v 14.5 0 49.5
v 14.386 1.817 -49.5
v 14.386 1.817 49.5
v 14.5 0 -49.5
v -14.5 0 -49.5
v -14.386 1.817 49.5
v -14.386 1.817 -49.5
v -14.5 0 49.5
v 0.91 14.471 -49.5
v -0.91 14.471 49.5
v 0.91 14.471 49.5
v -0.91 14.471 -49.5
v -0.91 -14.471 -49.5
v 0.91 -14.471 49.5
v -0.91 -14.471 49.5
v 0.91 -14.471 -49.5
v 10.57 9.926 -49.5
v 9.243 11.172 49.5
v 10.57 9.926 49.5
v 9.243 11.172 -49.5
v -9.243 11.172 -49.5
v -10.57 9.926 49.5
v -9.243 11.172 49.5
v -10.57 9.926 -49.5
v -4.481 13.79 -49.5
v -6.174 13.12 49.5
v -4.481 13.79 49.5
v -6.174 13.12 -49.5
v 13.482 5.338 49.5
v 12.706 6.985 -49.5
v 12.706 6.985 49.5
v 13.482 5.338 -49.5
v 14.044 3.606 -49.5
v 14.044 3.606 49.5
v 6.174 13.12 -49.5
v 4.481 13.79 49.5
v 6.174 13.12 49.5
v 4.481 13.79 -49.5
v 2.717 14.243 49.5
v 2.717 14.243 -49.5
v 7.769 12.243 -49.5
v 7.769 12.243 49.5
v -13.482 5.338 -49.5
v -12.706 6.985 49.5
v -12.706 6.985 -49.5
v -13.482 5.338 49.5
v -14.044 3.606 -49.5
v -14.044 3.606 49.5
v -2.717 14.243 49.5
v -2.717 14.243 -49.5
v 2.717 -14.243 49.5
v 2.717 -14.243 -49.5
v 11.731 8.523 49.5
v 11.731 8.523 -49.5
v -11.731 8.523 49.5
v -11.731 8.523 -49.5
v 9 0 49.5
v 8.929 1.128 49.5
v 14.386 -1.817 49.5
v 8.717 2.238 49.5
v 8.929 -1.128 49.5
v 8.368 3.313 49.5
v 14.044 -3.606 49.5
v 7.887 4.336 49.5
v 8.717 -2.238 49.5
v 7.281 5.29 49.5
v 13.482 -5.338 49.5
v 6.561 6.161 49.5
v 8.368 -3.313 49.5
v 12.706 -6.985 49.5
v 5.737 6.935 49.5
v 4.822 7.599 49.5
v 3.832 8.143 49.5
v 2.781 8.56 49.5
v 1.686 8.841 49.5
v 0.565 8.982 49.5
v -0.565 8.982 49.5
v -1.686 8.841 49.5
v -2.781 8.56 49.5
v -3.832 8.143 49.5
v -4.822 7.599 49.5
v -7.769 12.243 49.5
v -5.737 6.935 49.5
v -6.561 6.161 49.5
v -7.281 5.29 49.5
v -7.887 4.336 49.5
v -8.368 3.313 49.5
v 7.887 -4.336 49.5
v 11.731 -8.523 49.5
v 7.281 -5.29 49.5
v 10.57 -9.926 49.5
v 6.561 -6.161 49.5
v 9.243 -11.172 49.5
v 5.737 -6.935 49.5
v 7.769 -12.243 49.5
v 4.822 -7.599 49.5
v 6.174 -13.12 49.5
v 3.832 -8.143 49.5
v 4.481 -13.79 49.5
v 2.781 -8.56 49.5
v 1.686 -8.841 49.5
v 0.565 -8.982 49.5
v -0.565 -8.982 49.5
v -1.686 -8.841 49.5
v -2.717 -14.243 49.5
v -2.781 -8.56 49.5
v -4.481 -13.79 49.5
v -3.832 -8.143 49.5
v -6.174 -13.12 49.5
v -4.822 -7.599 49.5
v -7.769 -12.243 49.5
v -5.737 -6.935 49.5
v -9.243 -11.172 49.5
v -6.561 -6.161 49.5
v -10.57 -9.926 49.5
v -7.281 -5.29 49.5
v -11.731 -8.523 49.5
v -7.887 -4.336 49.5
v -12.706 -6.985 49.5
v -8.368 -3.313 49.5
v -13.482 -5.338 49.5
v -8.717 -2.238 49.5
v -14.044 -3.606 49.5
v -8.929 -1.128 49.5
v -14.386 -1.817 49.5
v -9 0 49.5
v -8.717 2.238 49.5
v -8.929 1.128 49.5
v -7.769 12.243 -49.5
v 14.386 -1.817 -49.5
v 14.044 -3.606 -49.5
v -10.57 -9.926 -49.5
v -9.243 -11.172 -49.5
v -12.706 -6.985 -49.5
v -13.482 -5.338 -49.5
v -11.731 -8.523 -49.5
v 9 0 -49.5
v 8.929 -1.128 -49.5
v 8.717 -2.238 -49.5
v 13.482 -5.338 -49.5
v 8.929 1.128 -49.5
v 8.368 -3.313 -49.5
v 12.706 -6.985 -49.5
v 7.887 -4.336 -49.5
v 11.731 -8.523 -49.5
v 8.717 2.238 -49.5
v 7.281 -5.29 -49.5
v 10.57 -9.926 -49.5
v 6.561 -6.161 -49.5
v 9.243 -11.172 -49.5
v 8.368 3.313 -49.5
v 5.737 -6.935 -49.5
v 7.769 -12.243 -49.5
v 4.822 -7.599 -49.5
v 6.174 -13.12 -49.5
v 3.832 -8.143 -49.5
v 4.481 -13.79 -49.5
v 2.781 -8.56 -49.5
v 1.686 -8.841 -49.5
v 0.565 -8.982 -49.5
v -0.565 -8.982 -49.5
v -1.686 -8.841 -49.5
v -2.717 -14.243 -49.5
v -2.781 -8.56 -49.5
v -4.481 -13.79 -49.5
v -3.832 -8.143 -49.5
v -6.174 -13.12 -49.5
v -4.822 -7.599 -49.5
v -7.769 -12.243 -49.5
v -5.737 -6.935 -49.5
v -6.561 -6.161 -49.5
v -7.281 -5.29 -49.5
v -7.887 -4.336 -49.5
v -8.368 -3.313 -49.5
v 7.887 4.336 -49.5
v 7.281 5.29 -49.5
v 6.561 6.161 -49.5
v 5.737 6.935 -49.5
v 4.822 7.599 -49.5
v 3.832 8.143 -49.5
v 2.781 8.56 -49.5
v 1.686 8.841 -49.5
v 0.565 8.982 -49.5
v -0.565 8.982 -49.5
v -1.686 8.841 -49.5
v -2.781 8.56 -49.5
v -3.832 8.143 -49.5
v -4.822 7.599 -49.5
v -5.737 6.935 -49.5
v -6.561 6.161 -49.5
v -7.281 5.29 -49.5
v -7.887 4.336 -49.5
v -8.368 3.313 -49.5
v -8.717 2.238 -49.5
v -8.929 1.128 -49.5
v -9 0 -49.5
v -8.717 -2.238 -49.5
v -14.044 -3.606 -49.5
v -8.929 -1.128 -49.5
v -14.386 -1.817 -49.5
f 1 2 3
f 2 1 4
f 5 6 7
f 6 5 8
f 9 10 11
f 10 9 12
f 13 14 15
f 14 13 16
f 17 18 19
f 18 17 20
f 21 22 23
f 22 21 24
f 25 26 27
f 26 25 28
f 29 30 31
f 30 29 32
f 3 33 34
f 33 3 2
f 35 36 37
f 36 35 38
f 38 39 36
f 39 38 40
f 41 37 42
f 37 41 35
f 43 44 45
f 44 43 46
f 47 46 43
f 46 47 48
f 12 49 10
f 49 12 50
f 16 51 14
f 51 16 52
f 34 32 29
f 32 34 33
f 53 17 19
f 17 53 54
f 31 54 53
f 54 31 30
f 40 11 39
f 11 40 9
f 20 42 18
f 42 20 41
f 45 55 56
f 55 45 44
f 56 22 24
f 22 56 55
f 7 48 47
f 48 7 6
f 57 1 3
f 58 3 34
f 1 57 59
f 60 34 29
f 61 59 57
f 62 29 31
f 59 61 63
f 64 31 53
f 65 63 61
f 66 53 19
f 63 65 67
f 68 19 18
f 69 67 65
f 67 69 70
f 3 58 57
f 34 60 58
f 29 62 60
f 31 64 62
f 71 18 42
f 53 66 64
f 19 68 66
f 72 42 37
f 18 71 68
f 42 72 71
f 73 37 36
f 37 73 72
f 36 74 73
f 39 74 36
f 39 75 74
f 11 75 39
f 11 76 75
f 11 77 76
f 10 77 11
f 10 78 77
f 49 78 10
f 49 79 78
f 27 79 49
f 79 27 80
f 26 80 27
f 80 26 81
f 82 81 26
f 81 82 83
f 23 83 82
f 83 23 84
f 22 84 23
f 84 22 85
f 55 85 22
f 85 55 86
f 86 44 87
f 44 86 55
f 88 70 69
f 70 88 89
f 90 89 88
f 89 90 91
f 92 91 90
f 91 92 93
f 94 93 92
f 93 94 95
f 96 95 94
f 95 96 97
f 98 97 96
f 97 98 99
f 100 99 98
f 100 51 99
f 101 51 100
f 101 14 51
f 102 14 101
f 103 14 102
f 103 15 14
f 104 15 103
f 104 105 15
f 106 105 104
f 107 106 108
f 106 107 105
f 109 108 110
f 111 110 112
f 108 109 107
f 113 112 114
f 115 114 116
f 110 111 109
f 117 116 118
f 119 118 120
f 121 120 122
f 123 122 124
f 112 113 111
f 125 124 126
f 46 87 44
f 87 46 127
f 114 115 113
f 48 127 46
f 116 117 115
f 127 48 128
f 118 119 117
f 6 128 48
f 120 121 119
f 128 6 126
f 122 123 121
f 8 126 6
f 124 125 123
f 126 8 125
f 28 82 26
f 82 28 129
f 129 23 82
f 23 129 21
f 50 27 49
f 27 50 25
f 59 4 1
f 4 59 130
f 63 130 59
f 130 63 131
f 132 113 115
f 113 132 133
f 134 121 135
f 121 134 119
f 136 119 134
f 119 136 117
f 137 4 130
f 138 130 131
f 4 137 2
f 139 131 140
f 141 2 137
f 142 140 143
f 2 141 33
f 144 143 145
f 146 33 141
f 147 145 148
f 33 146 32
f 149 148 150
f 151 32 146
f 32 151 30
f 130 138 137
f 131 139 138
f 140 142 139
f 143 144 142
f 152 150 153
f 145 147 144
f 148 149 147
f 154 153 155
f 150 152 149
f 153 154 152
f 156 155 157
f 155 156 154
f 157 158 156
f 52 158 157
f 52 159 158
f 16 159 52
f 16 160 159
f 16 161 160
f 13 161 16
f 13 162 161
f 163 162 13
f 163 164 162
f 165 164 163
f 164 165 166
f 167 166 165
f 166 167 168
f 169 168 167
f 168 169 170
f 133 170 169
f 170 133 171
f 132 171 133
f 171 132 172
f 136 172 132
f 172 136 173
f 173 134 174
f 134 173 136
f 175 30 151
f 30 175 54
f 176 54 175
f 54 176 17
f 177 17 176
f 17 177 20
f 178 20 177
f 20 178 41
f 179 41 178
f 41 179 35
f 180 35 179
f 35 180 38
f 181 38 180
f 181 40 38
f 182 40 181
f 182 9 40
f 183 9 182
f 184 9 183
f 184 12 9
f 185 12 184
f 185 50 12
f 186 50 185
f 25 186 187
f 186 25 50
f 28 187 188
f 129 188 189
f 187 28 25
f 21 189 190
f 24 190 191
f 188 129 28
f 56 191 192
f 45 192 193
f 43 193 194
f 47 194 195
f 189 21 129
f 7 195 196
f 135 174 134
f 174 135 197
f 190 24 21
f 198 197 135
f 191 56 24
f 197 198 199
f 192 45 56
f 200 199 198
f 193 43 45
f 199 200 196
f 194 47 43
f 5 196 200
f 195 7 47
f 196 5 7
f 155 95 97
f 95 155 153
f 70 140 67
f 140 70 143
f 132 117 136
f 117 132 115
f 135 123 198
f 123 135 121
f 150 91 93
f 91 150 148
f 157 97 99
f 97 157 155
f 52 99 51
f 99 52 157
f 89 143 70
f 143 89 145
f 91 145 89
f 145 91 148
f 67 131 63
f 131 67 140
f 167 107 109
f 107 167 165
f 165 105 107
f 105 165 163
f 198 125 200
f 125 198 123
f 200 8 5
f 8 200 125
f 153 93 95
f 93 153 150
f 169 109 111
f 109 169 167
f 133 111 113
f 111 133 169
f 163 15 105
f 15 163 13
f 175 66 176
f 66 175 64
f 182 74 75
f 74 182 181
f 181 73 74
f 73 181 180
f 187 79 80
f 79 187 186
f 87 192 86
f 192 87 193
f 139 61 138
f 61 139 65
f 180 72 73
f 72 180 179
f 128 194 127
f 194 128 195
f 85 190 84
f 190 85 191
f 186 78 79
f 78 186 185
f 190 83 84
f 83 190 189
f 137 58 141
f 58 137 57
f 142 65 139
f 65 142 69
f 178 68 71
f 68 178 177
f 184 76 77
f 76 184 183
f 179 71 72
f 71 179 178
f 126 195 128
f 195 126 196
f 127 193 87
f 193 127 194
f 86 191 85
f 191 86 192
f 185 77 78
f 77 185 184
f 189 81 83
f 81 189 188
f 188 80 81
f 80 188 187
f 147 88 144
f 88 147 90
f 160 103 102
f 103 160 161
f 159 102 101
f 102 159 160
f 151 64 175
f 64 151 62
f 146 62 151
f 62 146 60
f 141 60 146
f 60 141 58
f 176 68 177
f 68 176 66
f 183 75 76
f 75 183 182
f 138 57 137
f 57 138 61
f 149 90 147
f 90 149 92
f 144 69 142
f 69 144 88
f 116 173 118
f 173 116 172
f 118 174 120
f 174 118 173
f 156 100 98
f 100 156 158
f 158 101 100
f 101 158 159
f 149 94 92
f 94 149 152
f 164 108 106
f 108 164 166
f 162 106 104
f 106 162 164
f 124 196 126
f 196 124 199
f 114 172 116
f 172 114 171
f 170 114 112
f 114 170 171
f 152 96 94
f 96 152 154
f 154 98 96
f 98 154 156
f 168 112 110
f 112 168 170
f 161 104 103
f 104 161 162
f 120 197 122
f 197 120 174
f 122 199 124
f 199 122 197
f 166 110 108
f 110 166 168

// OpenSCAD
$fn = 50;


difference() {
	union() {
		translate(v = [0, 0, -49.5000000000]) {
			cylinder(h = 99, r = 14.5000000000);
		}
	}
	union() {
		translate(v = [0, 0, -100.0000000000]) {
			cylinder(h = 200, r = 9);
		}
	}
}
